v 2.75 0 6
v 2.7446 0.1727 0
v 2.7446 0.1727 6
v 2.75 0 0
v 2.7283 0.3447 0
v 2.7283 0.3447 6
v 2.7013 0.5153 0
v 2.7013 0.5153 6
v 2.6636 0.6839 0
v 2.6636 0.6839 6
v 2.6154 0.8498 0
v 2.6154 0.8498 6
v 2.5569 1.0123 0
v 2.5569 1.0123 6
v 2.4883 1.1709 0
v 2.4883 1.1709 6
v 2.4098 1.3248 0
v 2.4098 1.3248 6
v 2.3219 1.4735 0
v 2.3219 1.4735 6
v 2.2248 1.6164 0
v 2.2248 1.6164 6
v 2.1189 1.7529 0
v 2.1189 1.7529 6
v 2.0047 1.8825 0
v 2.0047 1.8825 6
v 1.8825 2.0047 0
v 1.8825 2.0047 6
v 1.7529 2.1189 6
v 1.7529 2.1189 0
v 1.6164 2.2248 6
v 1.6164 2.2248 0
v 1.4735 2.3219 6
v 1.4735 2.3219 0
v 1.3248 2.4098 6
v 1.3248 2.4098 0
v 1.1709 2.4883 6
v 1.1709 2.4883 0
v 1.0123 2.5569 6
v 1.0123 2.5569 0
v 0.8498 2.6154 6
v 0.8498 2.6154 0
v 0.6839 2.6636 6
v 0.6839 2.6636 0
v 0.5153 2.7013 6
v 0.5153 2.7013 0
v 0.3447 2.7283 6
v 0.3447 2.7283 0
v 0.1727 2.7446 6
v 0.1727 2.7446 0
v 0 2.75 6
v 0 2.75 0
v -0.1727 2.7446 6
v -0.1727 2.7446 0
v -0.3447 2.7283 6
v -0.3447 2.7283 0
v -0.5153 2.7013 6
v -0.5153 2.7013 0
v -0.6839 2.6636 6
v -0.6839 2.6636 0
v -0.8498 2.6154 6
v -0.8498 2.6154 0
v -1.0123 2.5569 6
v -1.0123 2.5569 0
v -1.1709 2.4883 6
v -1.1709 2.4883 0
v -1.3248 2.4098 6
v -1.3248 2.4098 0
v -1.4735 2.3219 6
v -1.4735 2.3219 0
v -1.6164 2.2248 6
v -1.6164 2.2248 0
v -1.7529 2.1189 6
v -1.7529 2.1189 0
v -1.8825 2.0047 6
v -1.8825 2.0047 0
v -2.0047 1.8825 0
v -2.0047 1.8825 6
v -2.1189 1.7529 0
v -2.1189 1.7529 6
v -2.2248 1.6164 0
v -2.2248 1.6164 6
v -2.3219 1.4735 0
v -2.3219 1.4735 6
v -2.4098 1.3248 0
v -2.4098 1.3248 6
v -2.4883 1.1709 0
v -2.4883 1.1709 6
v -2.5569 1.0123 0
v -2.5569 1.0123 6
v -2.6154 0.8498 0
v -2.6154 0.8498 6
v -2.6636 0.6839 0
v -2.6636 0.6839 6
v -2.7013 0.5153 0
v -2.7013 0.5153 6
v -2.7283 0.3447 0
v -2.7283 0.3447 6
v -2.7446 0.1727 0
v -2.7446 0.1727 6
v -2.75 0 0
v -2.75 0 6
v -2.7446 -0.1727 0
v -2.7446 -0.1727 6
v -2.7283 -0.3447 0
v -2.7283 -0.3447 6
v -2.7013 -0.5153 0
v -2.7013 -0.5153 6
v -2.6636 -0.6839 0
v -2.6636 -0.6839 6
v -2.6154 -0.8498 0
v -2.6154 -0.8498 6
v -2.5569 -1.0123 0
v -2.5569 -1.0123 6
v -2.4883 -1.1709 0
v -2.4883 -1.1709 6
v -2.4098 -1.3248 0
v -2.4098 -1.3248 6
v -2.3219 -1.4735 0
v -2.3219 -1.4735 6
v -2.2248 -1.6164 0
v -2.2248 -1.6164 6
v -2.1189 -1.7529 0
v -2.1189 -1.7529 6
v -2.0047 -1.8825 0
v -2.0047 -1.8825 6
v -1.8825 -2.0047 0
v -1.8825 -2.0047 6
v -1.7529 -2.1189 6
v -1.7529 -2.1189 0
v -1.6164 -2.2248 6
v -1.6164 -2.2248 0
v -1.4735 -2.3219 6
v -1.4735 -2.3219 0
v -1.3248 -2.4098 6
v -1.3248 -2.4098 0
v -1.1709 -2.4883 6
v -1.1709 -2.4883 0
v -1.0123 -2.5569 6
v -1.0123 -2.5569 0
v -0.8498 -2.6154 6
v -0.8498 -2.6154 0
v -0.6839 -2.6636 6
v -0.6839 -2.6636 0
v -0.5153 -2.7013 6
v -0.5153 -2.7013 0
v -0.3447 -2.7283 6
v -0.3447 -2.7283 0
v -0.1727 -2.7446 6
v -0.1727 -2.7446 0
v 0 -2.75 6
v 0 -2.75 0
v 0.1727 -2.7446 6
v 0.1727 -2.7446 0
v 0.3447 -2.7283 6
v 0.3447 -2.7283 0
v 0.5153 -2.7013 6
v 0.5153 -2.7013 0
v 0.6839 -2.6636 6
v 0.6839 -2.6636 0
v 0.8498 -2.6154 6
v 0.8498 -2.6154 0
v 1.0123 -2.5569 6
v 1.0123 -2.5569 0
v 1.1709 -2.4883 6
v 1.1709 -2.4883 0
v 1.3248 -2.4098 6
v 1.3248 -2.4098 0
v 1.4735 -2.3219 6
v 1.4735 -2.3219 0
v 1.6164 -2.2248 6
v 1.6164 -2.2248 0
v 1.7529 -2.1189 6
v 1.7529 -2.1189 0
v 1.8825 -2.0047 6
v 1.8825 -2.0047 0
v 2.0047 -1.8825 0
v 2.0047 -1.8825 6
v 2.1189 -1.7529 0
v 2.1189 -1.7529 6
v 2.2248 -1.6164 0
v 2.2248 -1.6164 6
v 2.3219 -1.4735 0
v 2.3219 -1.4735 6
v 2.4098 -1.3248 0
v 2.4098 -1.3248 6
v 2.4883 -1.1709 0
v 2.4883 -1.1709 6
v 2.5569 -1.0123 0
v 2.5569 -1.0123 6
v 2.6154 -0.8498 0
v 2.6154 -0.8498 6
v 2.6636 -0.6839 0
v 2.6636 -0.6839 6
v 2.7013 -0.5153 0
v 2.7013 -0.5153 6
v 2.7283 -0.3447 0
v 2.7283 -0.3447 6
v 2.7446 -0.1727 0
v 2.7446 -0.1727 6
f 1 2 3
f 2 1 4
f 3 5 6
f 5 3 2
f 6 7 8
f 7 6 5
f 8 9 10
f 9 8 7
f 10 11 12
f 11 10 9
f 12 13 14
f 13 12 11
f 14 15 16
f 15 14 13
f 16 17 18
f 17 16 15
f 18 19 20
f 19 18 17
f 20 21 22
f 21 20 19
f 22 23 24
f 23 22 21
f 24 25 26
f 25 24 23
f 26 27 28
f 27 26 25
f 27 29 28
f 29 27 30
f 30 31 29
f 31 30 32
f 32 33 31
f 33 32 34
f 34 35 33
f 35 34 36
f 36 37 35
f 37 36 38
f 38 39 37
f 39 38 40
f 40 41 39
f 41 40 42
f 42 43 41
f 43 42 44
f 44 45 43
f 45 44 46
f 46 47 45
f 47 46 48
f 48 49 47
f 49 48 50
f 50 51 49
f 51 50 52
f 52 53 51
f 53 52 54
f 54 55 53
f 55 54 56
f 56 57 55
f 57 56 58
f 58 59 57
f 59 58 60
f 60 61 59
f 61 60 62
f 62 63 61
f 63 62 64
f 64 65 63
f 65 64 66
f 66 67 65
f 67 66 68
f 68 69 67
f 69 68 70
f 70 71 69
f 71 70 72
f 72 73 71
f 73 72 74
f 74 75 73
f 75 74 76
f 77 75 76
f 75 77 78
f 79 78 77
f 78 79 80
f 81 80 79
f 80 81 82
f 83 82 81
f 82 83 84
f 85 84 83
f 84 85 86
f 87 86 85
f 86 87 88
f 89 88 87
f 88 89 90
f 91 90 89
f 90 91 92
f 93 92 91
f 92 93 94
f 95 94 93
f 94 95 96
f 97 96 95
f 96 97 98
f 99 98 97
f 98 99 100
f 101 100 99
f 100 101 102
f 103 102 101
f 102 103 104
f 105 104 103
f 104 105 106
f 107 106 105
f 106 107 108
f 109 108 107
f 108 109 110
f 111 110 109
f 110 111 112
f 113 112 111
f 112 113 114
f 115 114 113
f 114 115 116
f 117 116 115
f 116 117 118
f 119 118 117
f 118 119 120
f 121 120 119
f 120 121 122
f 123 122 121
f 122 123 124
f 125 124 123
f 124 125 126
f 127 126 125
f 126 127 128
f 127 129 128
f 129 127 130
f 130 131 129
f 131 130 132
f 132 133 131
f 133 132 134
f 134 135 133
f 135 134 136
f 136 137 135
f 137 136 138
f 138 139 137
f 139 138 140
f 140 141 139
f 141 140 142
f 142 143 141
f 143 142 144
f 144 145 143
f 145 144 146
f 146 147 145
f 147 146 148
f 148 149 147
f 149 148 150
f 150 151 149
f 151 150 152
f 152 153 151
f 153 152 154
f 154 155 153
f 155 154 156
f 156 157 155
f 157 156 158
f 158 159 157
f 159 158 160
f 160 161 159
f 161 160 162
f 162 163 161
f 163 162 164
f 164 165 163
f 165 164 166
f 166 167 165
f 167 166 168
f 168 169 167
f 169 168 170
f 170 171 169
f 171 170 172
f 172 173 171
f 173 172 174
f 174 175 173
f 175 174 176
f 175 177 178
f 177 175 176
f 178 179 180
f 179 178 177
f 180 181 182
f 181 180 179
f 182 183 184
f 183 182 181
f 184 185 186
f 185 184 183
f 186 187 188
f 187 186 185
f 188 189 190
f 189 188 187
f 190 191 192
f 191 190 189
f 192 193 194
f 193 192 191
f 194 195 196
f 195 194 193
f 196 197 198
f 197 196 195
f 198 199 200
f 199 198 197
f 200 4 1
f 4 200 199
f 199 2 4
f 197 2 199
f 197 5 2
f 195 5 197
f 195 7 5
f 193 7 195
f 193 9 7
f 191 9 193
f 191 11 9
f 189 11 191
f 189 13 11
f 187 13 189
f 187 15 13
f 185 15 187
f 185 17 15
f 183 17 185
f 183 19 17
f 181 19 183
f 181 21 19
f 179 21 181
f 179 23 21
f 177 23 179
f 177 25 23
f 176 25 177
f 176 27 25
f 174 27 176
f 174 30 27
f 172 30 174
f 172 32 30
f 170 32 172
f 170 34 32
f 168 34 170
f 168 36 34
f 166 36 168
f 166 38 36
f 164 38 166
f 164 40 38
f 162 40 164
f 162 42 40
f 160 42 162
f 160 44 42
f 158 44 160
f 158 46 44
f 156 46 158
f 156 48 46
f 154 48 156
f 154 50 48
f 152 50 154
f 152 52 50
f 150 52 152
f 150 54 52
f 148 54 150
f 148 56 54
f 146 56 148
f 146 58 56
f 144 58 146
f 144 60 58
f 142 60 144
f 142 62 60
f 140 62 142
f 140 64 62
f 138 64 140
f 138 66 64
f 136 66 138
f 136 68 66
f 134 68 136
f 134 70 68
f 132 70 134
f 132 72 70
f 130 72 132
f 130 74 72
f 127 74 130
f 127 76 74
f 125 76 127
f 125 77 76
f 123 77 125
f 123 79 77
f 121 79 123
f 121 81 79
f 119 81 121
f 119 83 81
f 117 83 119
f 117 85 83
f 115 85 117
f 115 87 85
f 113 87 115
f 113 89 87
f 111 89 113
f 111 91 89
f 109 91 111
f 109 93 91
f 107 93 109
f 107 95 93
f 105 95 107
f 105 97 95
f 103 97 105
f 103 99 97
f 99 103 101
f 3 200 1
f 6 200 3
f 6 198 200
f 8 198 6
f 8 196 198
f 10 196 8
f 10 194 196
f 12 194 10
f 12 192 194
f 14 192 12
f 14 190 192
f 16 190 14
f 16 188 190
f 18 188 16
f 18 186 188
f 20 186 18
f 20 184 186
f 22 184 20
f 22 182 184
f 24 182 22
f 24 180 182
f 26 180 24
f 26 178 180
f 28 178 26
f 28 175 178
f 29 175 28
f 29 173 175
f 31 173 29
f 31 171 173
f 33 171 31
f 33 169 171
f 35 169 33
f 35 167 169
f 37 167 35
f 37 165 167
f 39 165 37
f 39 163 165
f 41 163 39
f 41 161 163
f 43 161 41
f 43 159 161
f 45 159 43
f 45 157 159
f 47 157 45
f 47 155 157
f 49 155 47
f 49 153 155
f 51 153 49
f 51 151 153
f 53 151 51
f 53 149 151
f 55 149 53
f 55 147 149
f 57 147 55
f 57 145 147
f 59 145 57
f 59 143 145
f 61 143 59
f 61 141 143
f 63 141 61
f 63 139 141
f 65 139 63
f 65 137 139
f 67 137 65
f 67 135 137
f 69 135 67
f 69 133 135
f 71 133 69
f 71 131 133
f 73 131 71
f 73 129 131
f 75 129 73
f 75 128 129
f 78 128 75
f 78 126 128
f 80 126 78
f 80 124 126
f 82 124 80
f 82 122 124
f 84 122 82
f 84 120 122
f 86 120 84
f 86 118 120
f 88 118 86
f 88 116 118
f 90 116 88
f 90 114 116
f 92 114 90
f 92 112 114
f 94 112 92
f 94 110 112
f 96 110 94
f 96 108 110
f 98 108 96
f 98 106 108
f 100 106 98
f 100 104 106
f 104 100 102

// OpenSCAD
$fn = 100;

hole_length = 6;
hole_diameter = 5.5;

cylinder(d=hole_diameter, hole_length);
